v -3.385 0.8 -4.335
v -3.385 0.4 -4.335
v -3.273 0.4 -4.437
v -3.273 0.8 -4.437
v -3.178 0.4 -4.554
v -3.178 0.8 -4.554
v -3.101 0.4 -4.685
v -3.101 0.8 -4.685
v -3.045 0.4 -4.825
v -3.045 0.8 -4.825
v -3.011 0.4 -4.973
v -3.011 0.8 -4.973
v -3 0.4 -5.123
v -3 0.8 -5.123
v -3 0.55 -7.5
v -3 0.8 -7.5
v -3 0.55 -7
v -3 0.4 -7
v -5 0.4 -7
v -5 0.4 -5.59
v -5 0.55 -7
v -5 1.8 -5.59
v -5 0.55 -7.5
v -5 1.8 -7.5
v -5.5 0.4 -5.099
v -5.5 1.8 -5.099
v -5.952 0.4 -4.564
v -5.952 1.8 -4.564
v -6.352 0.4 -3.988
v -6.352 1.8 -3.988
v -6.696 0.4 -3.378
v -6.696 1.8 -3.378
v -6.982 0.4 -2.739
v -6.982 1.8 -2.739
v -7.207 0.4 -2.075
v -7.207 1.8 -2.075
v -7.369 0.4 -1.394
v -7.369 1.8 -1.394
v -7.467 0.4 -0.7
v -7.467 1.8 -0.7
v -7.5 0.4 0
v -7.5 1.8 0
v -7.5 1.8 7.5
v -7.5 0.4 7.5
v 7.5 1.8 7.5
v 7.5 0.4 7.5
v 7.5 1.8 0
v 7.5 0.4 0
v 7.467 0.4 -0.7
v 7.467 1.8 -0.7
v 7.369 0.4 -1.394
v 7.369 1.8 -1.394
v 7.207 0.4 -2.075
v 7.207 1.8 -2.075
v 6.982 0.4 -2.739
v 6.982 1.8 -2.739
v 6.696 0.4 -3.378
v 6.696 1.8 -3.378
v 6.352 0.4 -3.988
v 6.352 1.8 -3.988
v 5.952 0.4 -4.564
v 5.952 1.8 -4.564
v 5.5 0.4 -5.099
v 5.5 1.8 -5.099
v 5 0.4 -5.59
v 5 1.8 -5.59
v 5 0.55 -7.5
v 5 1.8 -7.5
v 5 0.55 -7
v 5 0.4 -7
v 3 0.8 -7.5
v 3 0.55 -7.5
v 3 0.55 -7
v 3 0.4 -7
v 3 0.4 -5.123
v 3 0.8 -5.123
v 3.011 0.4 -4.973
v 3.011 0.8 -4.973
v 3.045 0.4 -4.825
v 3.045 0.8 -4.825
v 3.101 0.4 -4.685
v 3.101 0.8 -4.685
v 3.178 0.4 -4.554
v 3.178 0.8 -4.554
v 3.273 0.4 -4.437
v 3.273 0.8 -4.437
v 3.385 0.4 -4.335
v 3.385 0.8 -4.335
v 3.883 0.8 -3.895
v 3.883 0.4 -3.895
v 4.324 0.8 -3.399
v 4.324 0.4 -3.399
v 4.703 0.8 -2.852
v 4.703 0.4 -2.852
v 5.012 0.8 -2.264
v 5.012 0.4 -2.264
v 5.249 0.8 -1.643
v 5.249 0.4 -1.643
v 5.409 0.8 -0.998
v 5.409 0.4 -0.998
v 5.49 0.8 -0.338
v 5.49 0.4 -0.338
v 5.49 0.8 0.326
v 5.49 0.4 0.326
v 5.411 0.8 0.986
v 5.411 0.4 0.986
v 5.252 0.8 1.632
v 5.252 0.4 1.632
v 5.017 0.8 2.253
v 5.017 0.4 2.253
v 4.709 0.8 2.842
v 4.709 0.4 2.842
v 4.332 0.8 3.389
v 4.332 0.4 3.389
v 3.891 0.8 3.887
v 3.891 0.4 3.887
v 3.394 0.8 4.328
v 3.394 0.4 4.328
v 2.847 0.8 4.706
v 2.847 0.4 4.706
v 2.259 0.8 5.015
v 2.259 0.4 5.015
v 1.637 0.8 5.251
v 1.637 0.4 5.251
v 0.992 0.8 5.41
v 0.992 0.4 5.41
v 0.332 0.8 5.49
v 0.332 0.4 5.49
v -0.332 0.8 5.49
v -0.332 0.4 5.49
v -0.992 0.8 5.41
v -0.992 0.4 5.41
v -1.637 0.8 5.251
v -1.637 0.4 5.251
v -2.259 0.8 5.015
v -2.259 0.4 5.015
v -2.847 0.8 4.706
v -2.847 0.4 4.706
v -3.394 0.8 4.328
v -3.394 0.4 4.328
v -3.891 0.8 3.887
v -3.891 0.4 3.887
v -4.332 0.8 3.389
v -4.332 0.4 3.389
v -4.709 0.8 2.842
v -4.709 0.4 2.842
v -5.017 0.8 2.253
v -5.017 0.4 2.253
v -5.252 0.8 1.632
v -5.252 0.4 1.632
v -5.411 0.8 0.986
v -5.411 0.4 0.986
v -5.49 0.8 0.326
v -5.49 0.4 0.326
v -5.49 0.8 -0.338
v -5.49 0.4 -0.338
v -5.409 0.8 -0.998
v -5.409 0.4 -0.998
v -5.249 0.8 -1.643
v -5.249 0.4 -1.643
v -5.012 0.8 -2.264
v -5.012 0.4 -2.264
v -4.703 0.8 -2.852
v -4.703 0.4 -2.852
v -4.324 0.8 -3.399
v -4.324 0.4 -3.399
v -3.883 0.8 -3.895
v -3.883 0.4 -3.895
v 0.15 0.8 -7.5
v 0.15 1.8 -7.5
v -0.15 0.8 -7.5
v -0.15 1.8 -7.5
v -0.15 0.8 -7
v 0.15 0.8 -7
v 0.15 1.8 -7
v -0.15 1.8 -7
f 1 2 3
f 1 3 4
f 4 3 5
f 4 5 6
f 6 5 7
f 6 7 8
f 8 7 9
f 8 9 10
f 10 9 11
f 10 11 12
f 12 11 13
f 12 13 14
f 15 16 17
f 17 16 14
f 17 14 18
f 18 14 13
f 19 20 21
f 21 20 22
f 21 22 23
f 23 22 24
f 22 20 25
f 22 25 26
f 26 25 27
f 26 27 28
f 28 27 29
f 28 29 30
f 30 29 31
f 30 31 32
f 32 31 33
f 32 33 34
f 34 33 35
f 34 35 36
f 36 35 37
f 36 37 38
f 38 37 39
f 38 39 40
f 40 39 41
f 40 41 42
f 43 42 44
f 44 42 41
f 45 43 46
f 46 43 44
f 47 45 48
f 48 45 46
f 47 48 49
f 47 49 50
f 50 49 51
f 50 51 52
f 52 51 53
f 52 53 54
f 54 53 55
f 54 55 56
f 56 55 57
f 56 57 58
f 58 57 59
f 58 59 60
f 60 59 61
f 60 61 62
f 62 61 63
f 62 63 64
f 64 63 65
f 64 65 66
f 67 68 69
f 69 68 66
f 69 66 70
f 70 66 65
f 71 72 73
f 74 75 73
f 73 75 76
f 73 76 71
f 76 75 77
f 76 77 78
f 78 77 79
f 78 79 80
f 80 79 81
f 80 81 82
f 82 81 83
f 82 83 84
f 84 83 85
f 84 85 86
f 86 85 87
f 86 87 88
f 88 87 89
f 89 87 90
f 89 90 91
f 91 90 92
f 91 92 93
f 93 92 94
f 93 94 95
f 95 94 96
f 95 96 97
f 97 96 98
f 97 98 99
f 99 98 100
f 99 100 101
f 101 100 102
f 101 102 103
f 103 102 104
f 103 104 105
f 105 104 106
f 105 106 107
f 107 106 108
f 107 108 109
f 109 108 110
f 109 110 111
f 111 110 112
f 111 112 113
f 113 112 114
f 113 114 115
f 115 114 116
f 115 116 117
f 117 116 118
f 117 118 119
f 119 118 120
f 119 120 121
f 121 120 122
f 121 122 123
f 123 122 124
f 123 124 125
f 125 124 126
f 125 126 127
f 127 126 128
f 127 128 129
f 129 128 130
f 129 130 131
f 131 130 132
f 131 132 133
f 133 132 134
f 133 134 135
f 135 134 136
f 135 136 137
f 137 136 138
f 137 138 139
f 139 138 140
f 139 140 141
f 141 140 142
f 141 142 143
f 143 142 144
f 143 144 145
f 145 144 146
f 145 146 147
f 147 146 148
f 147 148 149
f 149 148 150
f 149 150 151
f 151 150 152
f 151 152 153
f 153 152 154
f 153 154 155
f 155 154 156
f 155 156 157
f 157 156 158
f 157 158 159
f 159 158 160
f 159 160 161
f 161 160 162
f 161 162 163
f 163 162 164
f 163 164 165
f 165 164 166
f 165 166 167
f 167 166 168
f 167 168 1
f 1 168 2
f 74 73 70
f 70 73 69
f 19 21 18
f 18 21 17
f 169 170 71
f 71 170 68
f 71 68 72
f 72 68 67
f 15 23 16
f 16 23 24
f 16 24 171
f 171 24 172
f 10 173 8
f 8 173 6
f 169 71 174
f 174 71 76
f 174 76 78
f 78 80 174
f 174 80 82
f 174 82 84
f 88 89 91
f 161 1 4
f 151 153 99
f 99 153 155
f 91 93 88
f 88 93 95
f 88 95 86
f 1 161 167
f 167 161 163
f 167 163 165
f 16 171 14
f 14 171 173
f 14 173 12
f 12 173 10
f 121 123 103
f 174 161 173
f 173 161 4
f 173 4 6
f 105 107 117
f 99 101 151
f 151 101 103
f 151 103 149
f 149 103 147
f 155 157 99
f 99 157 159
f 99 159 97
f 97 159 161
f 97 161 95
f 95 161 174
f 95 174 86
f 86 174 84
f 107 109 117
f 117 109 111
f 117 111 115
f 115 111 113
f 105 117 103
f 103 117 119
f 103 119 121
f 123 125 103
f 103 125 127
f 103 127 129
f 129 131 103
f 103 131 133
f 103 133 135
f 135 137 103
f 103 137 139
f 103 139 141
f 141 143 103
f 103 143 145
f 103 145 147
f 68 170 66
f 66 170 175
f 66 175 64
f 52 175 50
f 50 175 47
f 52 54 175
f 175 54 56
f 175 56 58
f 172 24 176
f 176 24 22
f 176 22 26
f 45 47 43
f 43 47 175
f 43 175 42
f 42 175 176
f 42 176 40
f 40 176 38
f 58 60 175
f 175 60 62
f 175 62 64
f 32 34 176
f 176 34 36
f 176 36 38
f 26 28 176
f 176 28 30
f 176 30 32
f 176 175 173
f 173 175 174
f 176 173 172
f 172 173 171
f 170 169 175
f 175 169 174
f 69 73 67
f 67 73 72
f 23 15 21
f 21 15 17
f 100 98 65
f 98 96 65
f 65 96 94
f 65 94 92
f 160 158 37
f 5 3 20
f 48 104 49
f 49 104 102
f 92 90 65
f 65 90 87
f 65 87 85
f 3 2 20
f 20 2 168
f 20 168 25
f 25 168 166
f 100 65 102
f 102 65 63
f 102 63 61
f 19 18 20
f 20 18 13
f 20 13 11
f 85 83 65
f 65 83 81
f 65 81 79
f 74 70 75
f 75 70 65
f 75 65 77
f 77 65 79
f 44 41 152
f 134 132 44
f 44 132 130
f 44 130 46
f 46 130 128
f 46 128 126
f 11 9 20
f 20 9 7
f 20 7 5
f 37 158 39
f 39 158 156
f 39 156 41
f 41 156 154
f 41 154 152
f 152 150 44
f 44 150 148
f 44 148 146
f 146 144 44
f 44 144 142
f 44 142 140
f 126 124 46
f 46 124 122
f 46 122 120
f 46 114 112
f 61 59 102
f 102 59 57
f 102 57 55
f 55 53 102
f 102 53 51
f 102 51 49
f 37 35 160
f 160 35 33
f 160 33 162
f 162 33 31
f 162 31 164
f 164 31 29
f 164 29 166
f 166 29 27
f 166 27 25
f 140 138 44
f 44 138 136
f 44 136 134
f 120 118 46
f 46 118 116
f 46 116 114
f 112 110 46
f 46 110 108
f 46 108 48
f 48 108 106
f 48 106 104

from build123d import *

# Parameters (mm, degrees)
BOSS_EXTRUDE1_DEPTH = 0.8
BOSS_EXTRUDE2_DEPTH = 1
BOSS_EXTRUDE3_START = 1
BOSS_EXTRUDE3_DEPTH = 1
CUT_EXTRUDE1_DEPTH  = 0.5
SKETCH5_W           = 18.969303985
SKETCH5_H           = 16.990491699
CUT_EXTRUDE2_DEPTH  = 4


with BuildPart() as part:
    # Sketch1 → Boss-Extrude1 (new body)
    with BuildSketch(Plane(origin=(0, 0, 0), x_dir=(1, 0, 0), z_dir=(0, 1, 0))):
        with BuildLine():
            Line((-5, 7.5), (-5, 5.590169944))
            ThreePointArc((-5, 5.590169944), (-6.846531969, 3.061862178), (-7.5, 0))
            Line((-7.5, 0), (-7.5, -7.5))
            Line((-7.5, -7.5), (7.5, -7.5))
            Line((7.5, -7.5), (7.5, 0))
            ThreePointArc((7.5, 0), (6.846531969, 3.061862178), (5, 5.590169944))
            Line((5, 5.590169944), (5, 7.5))
            Line((5, 7.5), (3, 7.5))
            Line((3, 7.5), (3, 5.5))
            Line((3, 5.5), (3, 5.123475383))
            ThreePointArc((3, 5.123475383), (3.101282966, 4.684946373), (3.384615385, 4.335248401))
            ThreePointArc((3.384615385, 4.335248401), (0, -5.5), (-3.384615385, 4.335248401))
            ThreePointArc((-3.384615385, 4.335248401), (-3.101282966, 4.684946373), (-3, 5.123475383))
            Line((-3, 5.123475383), (-3, 5.5))
            Line((-3, 5.5), (-3, 7.5))
            Line((-3, 7.5), (-5, 7.5))
        make_face()
    extrude(amount=BOSS_EXTRUDE1_DEPTH)

    # Sketch2 → Boss-Extrude2 (add)
    with BuildSketch(Plane(origin=(0, 0.8, 0), x_dir=(1, 0, 0), z_dir=(0, 1, 0))):
        with BuildLine():
            Line((5, 5.590169944), (5, 7.5))
            Line((5, 7.5), (3, 7.5))
            Line((3, 7.5), (-3, 7.5))
            Line((-3, 7.5), (-5, 7.5))
            Line((-5, 7.5), (-5, 5.590169944))
            ThreePointArc((-5, 5.590169944), (-6.846531969, 3.061862178), (-7.5, 0))
            Line((-7.5, 0), (-7.5, -7.5))
            Line((-7.5, -7.5), (7.5, -7.5))
            Line((7.5, -7.5), (7.5, 0))
            ThreePointArc((7.5, 0), (6.846531969, 3.061862178), (5, 5.590169944))
        make_face()
    extrude(amount=BOSS_EXTRUDE2_DEPTH)

    # Sketch3 → Boss-Extrude3 (add)
    with BuildSketch(Plane.XZ.offset(BOSS_EXTRUDE3_START)):
        with BuildLine():
            Line((-3, -7.5), (-5, -7.5))
            Line((-5, -7.5), (-5, -5.590169944))
            ThreePointArc((-5, -5.590169944), (-6.846531969, -3.061862178), (-7.5, 0))
            Line((-7.5, 0), (-7.5, 7.5))
            Line((-7.5, 7.5), (7.5, 7.5))
            Line((7.5, 7.5), (7.5, 0))
            ThreePointArc((7.5, 0), (6.846531969, -3.061862178), (5, -5.590169944))
            Line((5, -5.590169944), (5, -7.5))
            Line((5, -7.5), (3, -7.5))
            Line((3, -7.5), (-3, -7.5))
        make_face()
    extrude(amount=-BOSS_EXTRUDE3_DEPTH)

    # Sketch4 → Cut-Extrude1 (cut)
    with BuildSketch(Plane(origin=(0, 0, -7.5), x_dir=(-1, 0, 0), z_dir=(0, 0, -1))):
        Polygon((-5, 0.55), (-0.15, 0.55), (-0.15, 1.8), (0.15, 1.8), (0.15, 0.55), (5, 0.55), (5, 0.25), (0.15, 0.25), (0.15, -1), (-0.15, -1), (-0.15, 0.25), (-5, 0.25), align=None)
    extrude(amount=-CUT_EXTRUDE1_DEPTH, mode=Mode.SUBTRACT)

    # Sketch5 → Cut-Extrude2 (cut)
    with BuildSketch(Plane(origin=(0, 0.4, 0), x_dir=(-1, 0, 0), z_dir=(0, -1, 0))):
        with Locations((0.318429563, 0.045489938)):
            Rectangle(SKETCH5_W, SKETCH5_H)
    extrude(amount=CUT_EXTRUDE2_DEPTH, mode=Mode.SUBTRACT)


solid = part.part
